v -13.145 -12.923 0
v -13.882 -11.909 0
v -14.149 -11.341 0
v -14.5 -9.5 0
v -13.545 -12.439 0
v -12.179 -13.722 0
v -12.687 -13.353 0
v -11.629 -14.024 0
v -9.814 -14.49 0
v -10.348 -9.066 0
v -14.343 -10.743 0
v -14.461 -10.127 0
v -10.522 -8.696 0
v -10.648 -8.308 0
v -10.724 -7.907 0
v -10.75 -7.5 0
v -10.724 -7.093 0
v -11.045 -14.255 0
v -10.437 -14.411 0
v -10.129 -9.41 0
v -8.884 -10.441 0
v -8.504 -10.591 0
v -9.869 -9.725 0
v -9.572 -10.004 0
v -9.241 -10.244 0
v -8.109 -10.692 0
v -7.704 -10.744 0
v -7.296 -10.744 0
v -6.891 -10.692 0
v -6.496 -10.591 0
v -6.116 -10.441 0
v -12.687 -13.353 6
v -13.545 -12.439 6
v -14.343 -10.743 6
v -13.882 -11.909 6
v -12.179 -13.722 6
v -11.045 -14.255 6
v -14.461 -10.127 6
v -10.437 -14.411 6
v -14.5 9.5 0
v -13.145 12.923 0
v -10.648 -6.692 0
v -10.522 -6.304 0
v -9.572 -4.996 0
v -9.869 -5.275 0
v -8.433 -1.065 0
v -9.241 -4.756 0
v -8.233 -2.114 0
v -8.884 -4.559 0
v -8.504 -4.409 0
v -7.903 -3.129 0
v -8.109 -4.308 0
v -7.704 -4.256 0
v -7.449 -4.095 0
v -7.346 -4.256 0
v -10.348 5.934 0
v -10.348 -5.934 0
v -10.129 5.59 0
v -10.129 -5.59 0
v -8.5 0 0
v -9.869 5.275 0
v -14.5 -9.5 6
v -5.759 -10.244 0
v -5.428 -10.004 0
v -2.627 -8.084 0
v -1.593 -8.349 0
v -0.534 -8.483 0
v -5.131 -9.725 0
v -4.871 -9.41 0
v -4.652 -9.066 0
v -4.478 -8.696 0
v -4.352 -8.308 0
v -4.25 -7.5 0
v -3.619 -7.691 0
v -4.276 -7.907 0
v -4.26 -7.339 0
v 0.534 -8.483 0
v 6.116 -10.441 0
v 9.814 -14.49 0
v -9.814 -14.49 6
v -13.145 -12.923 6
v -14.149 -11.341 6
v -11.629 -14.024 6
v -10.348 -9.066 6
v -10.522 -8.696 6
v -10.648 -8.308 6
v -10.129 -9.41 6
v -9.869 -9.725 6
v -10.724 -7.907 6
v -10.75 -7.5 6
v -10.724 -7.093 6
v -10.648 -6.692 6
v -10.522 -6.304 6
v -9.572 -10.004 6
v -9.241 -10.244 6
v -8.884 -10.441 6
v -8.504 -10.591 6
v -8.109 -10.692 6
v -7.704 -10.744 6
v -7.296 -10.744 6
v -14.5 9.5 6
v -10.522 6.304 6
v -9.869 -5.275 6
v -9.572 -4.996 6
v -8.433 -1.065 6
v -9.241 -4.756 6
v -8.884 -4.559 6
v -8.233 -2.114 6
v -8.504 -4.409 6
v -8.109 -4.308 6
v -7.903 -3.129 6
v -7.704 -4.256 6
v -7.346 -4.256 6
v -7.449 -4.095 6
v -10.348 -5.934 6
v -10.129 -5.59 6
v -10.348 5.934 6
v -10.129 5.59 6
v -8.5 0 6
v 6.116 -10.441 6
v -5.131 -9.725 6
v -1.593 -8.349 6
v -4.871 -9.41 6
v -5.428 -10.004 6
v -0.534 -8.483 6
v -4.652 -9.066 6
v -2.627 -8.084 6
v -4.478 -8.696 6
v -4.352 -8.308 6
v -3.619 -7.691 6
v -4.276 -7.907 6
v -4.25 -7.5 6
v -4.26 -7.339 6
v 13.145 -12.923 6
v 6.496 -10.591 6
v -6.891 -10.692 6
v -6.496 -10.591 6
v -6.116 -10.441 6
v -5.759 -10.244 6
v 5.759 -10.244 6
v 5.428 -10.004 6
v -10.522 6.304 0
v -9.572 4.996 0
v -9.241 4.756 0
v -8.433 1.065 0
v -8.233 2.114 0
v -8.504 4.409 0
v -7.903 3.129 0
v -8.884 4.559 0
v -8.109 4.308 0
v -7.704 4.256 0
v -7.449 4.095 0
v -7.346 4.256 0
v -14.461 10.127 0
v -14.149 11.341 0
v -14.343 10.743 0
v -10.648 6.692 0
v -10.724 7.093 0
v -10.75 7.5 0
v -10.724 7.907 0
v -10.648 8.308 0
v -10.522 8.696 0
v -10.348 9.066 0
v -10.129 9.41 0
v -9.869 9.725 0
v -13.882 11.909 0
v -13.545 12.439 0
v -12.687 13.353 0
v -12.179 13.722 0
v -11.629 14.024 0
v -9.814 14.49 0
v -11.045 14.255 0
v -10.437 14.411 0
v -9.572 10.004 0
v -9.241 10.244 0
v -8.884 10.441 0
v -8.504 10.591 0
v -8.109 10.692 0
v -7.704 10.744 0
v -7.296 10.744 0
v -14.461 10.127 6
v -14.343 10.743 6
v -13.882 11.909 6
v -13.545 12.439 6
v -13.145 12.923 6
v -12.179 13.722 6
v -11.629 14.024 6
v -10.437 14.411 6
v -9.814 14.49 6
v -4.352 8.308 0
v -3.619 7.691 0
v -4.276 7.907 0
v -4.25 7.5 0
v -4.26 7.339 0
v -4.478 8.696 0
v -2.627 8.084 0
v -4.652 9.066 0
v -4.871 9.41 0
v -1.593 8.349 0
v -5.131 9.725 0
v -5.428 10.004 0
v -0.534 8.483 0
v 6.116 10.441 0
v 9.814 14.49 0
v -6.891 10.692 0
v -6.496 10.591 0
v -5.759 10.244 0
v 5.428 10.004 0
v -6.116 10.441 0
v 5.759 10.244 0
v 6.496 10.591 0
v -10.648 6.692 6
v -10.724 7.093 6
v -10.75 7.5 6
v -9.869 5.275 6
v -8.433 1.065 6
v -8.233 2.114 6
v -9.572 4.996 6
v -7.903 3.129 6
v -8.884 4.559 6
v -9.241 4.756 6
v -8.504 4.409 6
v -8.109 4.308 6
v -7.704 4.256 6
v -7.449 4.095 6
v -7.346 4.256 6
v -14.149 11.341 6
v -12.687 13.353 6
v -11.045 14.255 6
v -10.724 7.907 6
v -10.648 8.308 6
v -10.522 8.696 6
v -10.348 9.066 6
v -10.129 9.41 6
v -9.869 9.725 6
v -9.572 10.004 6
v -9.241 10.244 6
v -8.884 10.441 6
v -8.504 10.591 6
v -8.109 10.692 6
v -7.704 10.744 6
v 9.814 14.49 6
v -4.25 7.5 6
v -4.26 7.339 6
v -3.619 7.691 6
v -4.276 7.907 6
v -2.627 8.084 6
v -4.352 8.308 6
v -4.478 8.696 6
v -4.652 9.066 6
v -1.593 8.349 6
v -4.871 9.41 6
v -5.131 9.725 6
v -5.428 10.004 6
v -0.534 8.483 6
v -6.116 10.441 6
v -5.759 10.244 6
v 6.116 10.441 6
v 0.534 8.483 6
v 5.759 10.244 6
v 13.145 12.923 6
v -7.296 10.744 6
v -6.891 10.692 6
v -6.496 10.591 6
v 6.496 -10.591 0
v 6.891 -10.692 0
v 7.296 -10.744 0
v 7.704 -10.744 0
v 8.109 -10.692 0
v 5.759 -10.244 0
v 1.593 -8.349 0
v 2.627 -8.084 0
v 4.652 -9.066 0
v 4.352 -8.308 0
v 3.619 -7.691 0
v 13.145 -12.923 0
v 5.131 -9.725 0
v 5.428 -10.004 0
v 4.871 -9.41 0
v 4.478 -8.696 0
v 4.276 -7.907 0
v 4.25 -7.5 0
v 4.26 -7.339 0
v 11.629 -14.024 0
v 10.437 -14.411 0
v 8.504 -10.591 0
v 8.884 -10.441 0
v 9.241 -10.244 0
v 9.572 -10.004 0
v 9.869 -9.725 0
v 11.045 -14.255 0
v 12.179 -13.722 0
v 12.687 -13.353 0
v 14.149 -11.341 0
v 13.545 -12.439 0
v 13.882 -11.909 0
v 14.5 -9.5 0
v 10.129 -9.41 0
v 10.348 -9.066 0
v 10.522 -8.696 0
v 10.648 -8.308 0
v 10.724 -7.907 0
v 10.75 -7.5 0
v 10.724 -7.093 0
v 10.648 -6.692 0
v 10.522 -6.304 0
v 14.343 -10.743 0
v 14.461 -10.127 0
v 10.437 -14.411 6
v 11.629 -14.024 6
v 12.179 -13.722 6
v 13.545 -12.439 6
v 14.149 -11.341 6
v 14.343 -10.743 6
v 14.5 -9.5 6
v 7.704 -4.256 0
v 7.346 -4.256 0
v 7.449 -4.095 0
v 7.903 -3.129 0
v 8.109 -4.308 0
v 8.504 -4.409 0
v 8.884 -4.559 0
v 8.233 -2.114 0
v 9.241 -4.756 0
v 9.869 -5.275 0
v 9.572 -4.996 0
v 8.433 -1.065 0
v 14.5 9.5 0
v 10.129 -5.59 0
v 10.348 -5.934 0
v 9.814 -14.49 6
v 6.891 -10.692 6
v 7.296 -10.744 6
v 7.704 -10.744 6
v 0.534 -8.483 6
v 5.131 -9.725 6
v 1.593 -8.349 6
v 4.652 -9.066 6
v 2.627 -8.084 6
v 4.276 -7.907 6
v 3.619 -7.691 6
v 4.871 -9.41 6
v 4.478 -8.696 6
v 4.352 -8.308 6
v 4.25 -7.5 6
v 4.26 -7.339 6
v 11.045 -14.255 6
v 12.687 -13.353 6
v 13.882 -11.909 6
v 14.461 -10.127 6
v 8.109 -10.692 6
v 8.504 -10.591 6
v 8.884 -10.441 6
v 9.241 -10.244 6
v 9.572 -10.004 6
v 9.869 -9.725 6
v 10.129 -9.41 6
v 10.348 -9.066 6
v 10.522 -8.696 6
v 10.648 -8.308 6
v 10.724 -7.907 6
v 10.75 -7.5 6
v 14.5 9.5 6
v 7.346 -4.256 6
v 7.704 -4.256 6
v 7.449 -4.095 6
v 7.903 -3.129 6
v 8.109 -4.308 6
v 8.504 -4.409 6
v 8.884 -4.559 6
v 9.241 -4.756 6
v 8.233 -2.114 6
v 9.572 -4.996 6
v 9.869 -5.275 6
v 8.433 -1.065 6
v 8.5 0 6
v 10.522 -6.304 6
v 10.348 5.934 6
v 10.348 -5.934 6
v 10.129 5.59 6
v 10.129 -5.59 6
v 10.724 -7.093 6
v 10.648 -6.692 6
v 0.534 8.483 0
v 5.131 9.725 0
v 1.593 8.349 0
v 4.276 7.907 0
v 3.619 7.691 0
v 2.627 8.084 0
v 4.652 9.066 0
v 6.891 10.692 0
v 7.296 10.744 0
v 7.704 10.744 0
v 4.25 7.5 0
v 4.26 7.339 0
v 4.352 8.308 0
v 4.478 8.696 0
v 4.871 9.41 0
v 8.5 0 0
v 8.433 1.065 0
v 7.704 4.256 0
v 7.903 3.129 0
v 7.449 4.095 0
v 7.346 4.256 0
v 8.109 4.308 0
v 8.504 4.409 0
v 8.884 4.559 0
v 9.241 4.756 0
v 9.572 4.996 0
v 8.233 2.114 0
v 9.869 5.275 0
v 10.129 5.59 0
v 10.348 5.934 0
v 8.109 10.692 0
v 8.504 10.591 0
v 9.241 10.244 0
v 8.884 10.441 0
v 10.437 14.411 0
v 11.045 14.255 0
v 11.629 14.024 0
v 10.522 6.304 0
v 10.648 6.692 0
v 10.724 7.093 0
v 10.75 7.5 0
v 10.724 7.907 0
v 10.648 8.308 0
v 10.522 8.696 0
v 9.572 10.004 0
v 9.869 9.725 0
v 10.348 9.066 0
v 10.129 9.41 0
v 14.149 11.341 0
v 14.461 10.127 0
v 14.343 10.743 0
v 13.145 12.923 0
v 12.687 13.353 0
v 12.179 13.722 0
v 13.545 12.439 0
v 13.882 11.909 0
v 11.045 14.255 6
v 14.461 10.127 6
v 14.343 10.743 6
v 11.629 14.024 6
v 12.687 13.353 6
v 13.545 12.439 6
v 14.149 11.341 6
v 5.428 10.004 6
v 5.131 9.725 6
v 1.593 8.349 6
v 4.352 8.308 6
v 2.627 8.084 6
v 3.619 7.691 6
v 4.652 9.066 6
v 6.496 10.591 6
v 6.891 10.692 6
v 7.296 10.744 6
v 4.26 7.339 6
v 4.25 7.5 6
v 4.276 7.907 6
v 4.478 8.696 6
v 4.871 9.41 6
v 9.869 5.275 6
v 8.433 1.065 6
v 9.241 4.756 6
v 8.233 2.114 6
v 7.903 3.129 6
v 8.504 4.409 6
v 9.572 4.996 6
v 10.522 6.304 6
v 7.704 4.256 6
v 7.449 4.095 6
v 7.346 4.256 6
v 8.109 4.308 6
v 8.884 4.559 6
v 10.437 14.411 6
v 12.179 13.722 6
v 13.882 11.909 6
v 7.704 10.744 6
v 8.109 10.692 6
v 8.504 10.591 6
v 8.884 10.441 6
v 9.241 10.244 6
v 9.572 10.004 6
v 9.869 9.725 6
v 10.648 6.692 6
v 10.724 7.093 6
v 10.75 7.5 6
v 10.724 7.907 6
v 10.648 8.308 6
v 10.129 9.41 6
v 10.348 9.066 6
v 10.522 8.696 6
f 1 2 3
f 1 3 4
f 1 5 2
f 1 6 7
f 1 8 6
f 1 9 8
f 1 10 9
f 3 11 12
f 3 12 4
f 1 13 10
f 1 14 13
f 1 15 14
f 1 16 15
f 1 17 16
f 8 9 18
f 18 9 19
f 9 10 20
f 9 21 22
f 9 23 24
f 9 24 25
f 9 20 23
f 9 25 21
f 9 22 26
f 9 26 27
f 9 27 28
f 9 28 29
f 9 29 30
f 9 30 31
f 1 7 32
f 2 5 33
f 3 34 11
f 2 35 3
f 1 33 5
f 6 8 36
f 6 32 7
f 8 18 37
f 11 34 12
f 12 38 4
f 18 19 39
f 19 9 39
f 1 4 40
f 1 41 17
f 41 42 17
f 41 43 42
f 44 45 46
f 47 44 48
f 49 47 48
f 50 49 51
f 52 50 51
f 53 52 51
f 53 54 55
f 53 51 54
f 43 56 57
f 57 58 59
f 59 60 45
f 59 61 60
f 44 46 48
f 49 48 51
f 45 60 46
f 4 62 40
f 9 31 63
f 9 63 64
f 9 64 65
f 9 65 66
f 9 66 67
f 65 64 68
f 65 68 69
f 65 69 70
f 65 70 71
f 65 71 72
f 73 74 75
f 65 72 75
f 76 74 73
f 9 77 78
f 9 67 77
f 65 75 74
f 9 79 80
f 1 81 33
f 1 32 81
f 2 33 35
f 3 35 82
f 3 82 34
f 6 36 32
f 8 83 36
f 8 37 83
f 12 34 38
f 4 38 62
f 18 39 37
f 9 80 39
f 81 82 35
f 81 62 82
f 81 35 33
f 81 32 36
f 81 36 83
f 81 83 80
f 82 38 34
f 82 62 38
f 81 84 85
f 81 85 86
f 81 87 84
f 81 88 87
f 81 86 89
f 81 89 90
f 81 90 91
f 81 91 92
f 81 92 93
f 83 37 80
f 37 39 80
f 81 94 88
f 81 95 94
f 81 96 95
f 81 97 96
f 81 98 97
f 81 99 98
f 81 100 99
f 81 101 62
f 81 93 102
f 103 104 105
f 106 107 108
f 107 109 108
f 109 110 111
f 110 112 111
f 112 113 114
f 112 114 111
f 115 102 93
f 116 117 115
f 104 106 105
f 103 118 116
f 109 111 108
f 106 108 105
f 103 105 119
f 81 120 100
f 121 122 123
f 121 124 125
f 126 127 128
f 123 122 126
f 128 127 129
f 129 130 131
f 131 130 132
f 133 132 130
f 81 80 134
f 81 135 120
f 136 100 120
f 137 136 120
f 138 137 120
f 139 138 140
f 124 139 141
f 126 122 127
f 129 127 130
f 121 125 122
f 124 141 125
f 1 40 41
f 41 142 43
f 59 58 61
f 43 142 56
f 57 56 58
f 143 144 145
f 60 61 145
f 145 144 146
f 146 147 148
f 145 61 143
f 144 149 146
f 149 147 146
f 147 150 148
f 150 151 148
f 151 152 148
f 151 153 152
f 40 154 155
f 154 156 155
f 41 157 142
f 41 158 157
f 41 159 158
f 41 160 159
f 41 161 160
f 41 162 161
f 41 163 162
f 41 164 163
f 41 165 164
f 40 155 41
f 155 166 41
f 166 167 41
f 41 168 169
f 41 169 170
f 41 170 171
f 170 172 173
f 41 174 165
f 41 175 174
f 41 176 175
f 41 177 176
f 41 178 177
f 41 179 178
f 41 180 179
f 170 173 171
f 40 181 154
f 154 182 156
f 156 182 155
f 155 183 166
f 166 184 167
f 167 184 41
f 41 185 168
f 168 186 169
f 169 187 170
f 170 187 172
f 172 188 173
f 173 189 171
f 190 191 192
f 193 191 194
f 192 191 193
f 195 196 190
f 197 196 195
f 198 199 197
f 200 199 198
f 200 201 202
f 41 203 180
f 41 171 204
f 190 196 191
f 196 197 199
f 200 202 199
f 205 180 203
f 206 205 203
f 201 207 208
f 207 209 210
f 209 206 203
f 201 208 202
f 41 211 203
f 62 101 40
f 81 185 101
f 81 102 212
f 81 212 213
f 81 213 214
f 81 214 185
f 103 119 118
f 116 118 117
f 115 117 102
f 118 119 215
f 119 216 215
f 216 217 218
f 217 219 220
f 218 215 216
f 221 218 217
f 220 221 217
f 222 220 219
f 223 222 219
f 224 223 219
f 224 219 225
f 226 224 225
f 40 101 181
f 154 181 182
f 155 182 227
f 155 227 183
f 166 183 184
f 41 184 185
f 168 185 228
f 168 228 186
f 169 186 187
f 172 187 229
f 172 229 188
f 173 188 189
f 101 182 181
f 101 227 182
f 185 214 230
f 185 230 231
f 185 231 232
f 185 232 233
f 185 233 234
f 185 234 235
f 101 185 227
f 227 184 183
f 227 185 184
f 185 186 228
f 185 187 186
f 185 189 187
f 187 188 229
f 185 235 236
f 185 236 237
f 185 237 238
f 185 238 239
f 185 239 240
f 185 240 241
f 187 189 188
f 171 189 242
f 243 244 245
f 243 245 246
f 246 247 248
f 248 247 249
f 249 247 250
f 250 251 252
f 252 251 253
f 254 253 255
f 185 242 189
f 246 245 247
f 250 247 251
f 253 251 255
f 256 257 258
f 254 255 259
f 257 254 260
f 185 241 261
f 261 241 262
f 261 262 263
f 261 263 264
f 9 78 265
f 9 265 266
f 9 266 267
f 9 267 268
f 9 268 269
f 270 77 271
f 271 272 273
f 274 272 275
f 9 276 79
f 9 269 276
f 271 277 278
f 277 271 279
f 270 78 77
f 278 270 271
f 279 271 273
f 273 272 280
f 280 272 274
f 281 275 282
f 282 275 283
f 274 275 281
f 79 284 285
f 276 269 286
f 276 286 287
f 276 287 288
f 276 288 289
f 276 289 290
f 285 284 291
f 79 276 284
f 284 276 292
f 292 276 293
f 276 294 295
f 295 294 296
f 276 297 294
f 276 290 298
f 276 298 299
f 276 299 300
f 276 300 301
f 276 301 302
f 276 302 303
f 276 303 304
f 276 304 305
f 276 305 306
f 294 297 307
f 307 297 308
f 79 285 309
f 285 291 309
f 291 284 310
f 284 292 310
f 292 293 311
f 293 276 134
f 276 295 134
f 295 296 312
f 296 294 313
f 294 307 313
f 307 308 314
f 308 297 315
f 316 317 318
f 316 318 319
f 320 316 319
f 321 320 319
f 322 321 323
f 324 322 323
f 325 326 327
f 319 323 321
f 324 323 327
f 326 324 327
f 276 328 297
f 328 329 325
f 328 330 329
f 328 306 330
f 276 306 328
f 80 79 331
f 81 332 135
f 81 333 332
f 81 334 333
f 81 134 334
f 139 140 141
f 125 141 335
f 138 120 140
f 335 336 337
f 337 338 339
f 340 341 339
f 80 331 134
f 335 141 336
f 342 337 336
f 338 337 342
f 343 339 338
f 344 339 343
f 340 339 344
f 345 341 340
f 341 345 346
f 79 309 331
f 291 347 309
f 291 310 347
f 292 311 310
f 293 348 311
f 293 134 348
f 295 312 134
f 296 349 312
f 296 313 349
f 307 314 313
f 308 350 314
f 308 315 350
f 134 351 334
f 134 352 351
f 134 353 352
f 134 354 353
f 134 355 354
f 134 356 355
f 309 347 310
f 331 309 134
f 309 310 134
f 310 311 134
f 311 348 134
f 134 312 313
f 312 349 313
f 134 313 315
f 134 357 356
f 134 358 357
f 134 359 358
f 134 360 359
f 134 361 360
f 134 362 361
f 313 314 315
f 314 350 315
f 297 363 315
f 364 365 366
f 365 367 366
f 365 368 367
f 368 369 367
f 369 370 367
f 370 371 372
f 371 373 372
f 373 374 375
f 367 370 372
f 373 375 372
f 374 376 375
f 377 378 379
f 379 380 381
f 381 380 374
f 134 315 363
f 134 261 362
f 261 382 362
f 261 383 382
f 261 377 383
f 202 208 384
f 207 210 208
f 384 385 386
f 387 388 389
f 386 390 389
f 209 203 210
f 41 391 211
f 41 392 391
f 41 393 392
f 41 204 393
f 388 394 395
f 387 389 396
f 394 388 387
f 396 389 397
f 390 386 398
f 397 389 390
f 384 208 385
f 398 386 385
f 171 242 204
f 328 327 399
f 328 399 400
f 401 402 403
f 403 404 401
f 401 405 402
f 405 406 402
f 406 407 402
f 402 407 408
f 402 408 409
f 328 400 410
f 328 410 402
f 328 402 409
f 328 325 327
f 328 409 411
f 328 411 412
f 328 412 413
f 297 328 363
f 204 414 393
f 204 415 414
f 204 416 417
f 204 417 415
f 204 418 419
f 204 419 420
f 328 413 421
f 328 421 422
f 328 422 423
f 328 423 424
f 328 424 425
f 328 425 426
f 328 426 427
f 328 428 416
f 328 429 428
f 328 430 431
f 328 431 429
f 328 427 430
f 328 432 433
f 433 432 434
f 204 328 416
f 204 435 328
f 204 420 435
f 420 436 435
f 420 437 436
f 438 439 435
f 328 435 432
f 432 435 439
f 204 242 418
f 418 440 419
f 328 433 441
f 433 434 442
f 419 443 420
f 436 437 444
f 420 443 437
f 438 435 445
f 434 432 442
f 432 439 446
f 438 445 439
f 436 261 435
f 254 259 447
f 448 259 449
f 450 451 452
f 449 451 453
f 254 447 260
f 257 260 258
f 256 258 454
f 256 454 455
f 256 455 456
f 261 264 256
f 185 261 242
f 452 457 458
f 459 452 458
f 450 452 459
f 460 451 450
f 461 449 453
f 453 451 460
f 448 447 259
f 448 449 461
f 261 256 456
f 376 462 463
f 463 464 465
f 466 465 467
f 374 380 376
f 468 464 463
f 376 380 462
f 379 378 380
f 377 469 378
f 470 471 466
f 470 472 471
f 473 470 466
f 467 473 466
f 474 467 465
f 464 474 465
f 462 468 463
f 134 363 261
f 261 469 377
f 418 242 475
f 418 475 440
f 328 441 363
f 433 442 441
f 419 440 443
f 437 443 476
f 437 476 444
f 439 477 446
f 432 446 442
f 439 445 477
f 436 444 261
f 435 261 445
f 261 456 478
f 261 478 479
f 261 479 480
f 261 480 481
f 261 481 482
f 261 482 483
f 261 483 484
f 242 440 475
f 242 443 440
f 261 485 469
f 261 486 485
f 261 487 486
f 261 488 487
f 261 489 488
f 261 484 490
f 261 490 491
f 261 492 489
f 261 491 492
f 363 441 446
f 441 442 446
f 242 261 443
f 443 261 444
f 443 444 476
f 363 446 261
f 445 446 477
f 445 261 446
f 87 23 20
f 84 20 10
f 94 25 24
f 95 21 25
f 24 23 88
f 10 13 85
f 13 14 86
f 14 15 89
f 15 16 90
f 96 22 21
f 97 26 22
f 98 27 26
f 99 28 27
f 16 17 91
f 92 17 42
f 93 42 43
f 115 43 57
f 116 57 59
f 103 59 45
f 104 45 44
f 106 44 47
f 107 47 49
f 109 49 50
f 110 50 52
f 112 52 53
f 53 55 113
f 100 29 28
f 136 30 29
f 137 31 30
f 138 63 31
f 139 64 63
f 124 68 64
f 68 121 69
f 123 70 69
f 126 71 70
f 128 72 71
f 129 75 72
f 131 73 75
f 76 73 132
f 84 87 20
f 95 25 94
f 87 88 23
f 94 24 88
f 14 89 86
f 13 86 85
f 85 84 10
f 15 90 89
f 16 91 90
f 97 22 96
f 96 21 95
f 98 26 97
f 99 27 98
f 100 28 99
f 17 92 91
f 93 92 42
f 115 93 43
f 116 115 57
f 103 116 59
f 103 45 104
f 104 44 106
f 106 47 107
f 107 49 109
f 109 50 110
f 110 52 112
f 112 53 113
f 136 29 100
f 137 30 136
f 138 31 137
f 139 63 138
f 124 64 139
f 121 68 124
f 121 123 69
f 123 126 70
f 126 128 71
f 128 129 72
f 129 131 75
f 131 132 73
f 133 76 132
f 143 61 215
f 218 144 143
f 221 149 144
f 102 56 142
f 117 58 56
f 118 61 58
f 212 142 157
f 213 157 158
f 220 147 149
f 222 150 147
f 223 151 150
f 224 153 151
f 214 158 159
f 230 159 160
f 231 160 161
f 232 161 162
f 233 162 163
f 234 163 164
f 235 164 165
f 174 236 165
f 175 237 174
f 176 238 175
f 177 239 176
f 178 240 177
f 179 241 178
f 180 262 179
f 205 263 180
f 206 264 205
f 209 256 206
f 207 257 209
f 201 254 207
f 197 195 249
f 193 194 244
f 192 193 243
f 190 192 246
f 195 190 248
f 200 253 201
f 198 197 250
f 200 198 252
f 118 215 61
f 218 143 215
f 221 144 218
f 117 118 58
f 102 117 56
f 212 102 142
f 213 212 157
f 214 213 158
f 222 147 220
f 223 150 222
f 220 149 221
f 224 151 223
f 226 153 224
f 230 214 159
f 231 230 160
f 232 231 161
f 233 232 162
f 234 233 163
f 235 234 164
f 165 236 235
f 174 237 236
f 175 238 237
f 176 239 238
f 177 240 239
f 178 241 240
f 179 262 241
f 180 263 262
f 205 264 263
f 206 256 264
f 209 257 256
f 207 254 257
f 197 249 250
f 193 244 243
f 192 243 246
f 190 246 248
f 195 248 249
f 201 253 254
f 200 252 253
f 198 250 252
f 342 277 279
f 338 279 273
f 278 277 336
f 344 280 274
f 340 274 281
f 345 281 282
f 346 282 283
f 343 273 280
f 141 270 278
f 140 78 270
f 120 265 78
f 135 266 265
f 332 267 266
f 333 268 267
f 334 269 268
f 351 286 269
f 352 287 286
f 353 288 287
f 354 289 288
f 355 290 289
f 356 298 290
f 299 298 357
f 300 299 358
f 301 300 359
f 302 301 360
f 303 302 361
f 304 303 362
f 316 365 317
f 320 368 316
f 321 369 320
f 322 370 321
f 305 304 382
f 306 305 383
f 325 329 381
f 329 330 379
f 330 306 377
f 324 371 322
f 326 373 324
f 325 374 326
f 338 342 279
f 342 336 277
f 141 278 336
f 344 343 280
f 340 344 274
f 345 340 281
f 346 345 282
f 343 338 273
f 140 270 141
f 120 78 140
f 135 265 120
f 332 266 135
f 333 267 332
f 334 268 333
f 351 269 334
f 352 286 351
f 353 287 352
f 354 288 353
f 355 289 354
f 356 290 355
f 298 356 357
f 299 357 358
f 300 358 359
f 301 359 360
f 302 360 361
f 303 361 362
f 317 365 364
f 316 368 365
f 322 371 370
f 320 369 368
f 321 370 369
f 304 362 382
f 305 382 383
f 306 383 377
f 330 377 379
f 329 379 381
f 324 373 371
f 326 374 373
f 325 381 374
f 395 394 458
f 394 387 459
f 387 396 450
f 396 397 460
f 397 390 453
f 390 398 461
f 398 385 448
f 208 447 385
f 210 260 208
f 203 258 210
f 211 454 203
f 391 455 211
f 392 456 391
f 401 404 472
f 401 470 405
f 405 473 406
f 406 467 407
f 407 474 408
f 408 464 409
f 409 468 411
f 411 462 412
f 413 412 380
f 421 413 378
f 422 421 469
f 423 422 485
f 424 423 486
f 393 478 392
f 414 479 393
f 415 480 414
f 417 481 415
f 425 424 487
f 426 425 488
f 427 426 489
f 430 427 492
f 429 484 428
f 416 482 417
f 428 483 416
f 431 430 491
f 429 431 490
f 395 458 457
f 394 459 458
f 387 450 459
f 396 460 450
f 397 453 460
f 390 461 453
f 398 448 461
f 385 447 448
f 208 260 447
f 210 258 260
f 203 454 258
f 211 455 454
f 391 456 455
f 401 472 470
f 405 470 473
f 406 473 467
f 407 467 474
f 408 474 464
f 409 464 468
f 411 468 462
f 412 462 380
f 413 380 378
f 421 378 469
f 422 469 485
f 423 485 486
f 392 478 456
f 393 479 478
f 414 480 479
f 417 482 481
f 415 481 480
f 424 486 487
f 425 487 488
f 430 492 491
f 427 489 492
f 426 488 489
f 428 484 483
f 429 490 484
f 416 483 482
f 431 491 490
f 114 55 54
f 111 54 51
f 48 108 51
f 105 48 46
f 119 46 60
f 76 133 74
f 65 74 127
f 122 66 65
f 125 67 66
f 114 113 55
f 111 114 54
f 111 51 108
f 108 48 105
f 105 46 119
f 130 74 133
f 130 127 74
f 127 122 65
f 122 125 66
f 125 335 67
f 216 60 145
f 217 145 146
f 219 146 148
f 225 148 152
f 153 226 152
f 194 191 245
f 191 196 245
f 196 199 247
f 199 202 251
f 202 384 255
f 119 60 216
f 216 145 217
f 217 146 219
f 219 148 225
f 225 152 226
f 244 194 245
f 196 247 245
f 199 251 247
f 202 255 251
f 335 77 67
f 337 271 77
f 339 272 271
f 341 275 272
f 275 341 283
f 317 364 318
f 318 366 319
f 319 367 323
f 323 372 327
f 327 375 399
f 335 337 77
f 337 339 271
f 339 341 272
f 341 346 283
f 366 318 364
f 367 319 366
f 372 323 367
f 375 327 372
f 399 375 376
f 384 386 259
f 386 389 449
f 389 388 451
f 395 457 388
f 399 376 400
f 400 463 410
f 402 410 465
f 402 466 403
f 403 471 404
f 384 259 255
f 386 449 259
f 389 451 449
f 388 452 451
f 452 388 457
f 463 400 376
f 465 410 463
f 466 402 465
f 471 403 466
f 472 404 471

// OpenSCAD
$fn = 50;

difference() {
	union() {
		hull() {
			translate(v = [-9.5, 9.5, 0]) {
				cylinder(h = 6, r = 5);
			}
			translate(v = [9.5, 9.5, 0]) {
				cylinder(h = 6, r = 5);
			}
			translate(v = [-9.5, -9.5, 0]) {
				cylinder(h = 6, r = 5);
			}
			translate(v = [9.5, -9.5, 0]) {
				cylinder(h = 6, r = 5);
			}
		}
	}
	union() {
		translate(v = [-7.5, -7.5, -100.0]) {
			cylinder(h = 200, r = 3.25);
		}
		translate(v = [-7.5, 7.5, -100.0]) {
			cylinder(h = 200, r = 3.25);
		}
		translate(v = [7.5, -7.5, -100.0]) {
			cylinder(h = 200, r = 3.25);
		}
		translate(v = [7.5, 7.5, -100.0]) {
			cylinder(h = 200, r = 3.25);
		}
		translate(v = [-7.5, -7.5, -100.0]) {
			cylinder(h = 200, r = 1.8);
		}
		translate(v = [-7.5, 7.5, -100.0]) {
			cylinder(h = 200, r = 1.8);
		}
		translate(v = [7.5, -7.5, -100.0]) {
			cylinder(h = 200, r = 1.8);
		}
		translate(v = [7.5, 7.5, -100.0]) {
			cylinder(h = 200, r = 1.8);
		}
		cylinder(h = 6, r = 8.5);
	}
}
